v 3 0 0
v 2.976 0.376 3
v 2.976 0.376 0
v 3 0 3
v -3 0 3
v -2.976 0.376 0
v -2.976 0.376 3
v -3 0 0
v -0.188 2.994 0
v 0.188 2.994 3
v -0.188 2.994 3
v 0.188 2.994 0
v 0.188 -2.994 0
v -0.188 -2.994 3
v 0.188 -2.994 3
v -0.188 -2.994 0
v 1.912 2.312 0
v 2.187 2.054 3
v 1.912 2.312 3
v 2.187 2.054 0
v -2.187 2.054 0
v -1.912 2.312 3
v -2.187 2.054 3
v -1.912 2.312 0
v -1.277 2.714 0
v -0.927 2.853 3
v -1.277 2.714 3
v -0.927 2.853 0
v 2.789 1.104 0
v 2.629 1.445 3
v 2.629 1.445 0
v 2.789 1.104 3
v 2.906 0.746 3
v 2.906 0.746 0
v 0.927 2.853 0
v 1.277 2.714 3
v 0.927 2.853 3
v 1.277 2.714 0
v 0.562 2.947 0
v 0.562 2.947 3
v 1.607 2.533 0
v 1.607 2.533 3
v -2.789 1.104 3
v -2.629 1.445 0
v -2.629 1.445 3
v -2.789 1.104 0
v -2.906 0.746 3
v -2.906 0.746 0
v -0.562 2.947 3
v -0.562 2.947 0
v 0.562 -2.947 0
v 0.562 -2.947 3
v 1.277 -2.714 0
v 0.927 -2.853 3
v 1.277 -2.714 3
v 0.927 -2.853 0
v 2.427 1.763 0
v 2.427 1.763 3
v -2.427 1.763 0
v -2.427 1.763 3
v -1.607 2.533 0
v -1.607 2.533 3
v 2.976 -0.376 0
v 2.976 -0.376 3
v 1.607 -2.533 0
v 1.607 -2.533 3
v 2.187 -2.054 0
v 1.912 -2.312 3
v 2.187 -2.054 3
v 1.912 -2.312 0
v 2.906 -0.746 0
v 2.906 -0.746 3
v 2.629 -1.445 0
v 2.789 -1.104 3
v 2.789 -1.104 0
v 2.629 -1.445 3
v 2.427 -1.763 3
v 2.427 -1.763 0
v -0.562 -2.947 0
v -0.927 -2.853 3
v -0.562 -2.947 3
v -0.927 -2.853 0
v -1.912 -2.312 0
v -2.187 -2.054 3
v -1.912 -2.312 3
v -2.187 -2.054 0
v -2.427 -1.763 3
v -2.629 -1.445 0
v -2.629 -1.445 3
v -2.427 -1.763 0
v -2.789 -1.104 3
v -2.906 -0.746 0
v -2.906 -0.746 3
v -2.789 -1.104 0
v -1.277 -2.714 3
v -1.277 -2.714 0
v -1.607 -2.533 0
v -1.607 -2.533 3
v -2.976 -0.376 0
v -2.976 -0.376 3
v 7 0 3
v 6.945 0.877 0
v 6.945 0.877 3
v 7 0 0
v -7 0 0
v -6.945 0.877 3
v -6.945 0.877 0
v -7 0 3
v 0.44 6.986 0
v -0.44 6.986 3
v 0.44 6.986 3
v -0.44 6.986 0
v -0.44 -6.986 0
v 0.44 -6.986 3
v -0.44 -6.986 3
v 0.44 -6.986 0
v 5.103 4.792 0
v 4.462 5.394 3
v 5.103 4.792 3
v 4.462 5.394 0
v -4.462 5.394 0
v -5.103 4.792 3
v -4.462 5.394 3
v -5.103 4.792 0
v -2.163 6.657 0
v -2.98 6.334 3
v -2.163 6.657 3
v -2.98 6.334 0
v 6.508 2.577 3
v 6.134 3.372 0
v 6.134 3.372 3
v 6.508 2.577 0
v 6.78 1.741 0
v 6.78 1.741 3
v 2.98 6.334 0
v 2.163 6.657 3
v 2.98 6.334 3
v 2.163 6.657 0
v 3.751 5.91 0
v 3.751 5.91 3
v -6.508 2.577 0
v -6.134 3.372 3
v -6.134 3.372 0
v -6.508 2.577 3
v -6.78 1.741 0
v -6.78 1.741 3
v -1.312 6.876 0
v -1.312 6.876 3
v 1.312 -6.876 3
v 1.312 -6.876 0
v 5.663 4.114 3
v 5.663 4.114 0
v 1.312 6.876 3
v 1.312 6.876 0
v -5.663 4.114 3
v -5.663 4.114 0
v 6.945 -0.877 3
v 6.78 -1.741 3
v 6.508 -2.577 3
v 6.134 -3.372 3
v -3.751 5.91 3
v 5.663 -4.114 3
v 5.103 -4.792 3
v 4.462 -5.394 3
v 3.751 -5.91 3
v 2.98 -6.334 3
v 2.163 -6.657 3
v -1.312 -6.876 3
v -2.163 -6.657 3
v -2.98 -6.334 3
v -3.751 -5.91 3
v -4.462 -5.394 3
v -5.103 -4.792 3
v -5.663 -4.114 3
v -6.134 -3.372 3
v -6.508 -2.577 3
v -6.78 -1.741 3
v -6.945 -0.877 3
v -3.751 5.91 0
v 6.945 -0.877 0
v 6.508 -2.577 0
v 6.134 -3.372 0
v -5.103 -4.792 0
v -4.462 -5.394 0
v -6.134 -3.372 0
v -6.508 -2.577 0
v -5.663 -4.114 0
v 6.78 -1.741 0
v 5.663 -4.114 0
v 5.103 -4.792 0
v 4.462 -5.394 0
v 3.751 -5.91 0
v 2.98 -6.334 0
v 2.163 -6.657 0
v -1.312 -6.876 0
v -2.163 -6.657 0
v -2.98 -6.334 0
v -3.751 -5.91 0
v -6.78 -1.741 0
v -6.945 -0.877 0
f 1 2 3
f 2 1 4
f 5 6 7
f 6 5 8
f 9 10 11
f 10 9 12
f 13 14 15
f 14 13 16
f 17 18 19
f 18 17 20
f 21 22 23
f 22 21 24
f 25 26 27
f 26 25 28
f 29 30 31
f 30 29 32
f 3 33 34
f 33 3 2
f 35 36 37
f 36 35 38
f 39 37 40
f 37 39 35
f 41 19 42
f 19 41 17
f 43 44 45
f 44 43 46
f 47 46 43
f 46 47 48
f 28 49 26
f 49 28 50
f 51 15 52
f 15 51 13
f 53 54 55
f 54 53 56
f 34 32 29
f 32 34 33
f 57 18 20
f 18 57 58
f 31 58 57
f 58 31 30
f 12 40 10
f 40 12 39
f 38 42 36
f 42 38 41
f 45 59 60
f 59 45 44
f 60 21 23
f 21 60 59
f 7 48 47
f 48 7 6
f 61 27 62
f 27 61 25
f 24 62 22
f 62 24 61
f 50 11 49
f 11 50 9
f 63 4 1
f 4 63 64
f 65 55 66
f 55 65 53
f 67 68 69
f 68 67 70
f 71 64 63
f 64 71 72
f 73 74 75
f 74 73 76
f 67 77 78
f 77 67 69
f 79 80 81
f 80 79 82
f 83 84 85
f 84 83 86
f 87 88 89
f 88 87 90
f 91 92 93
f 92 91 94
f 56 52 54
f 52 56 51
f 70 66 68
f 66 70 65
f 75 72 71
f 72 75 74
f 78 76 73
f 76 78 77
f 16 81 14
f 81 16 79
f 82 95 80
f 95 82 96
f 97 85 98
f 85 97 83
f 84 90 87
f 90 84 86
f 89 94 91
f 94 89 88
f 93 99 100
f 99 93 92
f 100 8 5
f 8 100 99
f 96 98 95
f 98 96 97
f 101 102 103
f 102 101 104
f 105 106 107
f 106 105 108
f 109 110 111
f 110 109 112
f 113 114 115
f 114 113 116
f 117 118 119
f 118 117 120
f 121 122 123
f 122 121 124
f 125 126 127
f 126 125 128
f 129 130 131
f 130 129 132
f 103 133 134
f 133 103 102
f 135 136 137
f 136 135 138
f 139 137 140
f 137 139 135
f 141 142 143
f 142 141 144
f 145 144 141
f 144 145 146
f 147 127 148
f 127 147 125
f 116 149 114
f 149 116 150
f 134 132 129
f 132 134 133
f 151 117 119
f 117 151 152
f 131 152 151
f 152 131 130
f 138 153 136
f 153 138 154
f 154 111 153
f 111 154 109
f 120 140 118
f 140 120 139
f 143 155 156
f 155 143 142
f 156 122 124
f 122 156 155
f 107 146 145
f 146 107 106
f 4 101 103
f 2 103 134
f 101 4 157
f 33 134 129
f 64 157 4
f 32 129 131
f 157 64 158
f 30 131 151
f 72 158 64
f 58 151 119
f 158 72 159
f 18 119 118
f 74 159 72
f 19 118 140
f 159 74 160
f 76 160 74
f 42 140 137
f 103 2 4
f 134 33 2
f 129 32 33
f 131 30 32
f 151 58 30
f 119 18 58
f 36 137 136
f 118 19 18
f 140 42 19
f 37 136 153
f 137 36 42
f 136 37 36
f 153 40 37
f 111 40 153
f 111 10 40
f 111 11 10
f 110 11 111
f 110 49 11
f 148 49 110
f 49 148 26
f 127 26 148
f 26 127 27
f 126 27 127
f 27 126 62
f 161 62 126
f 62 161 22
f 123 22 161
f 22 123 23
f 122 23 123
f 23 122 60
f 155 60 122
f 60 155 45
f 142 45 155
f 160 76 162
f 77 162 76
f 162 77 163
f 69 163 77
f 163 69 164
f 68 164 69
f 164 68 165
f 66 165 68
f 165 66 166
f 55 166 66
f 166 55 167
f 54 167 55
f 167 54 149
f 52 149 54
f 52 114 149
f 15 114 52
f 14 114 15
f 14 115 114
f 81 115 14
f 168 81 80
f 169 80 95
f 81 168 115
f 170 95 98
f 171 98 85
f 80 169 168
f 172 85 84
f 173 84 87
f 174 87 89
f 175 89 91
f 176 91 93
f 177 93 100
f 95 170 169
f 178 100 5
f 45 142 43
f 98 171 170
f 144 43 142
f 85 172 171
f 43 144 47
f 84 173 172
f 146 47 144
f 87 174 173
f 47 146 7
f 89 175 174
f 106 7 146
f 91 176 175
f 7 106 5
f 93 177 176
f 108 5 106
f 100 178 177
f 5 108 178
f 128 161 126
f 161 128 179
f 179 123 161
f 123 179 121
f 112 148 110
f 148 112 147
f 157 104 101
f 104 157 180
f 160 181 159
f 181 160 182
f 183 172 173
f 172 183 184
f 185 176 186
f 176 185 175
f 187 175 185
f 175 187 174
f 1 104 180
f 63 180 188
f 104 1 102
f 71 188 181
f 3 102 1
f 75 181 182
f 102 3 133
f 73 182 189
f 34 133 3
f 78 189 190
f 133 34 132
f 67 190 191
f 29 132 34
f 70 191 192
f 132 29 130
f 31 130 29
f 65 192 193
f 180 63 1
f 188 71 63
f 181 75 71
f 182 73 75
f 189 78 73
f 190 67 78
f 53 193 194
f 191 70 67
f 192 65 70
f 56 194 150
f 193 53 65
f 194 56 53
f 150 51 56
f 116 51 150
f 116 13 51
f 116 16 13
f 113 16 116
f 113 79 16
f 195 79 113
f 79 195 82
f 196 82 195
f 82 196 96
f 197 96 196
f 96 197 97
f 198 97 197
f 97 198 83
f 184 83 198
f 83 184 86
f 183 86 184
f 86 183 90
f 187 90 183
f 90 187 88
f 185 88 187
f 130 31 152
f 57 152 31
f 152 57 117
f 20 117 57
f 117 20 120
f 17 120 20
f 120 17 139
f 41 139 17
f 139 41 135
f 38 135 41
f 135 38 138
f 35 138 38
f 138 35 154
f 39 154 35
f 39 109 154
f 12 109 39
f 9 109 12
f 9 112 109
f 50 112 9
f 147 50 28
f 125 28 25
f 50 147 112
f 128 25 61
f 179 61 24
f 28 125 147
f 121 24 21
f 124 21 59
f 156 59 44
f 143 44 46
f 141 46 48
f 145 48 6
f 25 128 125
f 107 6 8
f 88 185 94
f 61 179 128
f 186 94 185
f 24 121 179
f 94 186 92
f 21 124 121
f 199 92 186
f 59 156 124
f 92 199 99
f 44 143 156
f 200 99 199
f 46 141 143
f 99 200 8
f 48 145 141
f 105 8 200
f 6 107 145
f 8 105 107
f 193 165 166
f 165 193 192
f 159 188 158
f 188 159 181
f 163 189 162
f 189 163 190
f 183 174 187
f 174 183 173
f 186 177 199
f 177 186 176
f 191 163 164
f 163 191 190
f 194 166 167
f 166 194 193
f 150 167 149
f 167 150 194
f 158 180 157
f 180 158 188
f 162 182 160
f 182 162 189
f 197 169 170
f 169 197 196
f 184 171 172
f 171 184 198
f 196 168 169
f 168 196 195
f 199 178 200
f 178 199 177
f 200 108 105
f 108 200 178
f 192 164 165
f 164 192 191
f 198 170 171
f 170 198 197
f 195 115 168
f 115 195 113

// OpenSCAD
$fn = 50;


difference() {
	union() {
		cylinder(h = 3, r = 7.0000000000);
	}
	union() {
		translate(v = [0, 0, -100]) {
			cylinder(h = 200, r = 3.0000000000);
		}
	}
}
